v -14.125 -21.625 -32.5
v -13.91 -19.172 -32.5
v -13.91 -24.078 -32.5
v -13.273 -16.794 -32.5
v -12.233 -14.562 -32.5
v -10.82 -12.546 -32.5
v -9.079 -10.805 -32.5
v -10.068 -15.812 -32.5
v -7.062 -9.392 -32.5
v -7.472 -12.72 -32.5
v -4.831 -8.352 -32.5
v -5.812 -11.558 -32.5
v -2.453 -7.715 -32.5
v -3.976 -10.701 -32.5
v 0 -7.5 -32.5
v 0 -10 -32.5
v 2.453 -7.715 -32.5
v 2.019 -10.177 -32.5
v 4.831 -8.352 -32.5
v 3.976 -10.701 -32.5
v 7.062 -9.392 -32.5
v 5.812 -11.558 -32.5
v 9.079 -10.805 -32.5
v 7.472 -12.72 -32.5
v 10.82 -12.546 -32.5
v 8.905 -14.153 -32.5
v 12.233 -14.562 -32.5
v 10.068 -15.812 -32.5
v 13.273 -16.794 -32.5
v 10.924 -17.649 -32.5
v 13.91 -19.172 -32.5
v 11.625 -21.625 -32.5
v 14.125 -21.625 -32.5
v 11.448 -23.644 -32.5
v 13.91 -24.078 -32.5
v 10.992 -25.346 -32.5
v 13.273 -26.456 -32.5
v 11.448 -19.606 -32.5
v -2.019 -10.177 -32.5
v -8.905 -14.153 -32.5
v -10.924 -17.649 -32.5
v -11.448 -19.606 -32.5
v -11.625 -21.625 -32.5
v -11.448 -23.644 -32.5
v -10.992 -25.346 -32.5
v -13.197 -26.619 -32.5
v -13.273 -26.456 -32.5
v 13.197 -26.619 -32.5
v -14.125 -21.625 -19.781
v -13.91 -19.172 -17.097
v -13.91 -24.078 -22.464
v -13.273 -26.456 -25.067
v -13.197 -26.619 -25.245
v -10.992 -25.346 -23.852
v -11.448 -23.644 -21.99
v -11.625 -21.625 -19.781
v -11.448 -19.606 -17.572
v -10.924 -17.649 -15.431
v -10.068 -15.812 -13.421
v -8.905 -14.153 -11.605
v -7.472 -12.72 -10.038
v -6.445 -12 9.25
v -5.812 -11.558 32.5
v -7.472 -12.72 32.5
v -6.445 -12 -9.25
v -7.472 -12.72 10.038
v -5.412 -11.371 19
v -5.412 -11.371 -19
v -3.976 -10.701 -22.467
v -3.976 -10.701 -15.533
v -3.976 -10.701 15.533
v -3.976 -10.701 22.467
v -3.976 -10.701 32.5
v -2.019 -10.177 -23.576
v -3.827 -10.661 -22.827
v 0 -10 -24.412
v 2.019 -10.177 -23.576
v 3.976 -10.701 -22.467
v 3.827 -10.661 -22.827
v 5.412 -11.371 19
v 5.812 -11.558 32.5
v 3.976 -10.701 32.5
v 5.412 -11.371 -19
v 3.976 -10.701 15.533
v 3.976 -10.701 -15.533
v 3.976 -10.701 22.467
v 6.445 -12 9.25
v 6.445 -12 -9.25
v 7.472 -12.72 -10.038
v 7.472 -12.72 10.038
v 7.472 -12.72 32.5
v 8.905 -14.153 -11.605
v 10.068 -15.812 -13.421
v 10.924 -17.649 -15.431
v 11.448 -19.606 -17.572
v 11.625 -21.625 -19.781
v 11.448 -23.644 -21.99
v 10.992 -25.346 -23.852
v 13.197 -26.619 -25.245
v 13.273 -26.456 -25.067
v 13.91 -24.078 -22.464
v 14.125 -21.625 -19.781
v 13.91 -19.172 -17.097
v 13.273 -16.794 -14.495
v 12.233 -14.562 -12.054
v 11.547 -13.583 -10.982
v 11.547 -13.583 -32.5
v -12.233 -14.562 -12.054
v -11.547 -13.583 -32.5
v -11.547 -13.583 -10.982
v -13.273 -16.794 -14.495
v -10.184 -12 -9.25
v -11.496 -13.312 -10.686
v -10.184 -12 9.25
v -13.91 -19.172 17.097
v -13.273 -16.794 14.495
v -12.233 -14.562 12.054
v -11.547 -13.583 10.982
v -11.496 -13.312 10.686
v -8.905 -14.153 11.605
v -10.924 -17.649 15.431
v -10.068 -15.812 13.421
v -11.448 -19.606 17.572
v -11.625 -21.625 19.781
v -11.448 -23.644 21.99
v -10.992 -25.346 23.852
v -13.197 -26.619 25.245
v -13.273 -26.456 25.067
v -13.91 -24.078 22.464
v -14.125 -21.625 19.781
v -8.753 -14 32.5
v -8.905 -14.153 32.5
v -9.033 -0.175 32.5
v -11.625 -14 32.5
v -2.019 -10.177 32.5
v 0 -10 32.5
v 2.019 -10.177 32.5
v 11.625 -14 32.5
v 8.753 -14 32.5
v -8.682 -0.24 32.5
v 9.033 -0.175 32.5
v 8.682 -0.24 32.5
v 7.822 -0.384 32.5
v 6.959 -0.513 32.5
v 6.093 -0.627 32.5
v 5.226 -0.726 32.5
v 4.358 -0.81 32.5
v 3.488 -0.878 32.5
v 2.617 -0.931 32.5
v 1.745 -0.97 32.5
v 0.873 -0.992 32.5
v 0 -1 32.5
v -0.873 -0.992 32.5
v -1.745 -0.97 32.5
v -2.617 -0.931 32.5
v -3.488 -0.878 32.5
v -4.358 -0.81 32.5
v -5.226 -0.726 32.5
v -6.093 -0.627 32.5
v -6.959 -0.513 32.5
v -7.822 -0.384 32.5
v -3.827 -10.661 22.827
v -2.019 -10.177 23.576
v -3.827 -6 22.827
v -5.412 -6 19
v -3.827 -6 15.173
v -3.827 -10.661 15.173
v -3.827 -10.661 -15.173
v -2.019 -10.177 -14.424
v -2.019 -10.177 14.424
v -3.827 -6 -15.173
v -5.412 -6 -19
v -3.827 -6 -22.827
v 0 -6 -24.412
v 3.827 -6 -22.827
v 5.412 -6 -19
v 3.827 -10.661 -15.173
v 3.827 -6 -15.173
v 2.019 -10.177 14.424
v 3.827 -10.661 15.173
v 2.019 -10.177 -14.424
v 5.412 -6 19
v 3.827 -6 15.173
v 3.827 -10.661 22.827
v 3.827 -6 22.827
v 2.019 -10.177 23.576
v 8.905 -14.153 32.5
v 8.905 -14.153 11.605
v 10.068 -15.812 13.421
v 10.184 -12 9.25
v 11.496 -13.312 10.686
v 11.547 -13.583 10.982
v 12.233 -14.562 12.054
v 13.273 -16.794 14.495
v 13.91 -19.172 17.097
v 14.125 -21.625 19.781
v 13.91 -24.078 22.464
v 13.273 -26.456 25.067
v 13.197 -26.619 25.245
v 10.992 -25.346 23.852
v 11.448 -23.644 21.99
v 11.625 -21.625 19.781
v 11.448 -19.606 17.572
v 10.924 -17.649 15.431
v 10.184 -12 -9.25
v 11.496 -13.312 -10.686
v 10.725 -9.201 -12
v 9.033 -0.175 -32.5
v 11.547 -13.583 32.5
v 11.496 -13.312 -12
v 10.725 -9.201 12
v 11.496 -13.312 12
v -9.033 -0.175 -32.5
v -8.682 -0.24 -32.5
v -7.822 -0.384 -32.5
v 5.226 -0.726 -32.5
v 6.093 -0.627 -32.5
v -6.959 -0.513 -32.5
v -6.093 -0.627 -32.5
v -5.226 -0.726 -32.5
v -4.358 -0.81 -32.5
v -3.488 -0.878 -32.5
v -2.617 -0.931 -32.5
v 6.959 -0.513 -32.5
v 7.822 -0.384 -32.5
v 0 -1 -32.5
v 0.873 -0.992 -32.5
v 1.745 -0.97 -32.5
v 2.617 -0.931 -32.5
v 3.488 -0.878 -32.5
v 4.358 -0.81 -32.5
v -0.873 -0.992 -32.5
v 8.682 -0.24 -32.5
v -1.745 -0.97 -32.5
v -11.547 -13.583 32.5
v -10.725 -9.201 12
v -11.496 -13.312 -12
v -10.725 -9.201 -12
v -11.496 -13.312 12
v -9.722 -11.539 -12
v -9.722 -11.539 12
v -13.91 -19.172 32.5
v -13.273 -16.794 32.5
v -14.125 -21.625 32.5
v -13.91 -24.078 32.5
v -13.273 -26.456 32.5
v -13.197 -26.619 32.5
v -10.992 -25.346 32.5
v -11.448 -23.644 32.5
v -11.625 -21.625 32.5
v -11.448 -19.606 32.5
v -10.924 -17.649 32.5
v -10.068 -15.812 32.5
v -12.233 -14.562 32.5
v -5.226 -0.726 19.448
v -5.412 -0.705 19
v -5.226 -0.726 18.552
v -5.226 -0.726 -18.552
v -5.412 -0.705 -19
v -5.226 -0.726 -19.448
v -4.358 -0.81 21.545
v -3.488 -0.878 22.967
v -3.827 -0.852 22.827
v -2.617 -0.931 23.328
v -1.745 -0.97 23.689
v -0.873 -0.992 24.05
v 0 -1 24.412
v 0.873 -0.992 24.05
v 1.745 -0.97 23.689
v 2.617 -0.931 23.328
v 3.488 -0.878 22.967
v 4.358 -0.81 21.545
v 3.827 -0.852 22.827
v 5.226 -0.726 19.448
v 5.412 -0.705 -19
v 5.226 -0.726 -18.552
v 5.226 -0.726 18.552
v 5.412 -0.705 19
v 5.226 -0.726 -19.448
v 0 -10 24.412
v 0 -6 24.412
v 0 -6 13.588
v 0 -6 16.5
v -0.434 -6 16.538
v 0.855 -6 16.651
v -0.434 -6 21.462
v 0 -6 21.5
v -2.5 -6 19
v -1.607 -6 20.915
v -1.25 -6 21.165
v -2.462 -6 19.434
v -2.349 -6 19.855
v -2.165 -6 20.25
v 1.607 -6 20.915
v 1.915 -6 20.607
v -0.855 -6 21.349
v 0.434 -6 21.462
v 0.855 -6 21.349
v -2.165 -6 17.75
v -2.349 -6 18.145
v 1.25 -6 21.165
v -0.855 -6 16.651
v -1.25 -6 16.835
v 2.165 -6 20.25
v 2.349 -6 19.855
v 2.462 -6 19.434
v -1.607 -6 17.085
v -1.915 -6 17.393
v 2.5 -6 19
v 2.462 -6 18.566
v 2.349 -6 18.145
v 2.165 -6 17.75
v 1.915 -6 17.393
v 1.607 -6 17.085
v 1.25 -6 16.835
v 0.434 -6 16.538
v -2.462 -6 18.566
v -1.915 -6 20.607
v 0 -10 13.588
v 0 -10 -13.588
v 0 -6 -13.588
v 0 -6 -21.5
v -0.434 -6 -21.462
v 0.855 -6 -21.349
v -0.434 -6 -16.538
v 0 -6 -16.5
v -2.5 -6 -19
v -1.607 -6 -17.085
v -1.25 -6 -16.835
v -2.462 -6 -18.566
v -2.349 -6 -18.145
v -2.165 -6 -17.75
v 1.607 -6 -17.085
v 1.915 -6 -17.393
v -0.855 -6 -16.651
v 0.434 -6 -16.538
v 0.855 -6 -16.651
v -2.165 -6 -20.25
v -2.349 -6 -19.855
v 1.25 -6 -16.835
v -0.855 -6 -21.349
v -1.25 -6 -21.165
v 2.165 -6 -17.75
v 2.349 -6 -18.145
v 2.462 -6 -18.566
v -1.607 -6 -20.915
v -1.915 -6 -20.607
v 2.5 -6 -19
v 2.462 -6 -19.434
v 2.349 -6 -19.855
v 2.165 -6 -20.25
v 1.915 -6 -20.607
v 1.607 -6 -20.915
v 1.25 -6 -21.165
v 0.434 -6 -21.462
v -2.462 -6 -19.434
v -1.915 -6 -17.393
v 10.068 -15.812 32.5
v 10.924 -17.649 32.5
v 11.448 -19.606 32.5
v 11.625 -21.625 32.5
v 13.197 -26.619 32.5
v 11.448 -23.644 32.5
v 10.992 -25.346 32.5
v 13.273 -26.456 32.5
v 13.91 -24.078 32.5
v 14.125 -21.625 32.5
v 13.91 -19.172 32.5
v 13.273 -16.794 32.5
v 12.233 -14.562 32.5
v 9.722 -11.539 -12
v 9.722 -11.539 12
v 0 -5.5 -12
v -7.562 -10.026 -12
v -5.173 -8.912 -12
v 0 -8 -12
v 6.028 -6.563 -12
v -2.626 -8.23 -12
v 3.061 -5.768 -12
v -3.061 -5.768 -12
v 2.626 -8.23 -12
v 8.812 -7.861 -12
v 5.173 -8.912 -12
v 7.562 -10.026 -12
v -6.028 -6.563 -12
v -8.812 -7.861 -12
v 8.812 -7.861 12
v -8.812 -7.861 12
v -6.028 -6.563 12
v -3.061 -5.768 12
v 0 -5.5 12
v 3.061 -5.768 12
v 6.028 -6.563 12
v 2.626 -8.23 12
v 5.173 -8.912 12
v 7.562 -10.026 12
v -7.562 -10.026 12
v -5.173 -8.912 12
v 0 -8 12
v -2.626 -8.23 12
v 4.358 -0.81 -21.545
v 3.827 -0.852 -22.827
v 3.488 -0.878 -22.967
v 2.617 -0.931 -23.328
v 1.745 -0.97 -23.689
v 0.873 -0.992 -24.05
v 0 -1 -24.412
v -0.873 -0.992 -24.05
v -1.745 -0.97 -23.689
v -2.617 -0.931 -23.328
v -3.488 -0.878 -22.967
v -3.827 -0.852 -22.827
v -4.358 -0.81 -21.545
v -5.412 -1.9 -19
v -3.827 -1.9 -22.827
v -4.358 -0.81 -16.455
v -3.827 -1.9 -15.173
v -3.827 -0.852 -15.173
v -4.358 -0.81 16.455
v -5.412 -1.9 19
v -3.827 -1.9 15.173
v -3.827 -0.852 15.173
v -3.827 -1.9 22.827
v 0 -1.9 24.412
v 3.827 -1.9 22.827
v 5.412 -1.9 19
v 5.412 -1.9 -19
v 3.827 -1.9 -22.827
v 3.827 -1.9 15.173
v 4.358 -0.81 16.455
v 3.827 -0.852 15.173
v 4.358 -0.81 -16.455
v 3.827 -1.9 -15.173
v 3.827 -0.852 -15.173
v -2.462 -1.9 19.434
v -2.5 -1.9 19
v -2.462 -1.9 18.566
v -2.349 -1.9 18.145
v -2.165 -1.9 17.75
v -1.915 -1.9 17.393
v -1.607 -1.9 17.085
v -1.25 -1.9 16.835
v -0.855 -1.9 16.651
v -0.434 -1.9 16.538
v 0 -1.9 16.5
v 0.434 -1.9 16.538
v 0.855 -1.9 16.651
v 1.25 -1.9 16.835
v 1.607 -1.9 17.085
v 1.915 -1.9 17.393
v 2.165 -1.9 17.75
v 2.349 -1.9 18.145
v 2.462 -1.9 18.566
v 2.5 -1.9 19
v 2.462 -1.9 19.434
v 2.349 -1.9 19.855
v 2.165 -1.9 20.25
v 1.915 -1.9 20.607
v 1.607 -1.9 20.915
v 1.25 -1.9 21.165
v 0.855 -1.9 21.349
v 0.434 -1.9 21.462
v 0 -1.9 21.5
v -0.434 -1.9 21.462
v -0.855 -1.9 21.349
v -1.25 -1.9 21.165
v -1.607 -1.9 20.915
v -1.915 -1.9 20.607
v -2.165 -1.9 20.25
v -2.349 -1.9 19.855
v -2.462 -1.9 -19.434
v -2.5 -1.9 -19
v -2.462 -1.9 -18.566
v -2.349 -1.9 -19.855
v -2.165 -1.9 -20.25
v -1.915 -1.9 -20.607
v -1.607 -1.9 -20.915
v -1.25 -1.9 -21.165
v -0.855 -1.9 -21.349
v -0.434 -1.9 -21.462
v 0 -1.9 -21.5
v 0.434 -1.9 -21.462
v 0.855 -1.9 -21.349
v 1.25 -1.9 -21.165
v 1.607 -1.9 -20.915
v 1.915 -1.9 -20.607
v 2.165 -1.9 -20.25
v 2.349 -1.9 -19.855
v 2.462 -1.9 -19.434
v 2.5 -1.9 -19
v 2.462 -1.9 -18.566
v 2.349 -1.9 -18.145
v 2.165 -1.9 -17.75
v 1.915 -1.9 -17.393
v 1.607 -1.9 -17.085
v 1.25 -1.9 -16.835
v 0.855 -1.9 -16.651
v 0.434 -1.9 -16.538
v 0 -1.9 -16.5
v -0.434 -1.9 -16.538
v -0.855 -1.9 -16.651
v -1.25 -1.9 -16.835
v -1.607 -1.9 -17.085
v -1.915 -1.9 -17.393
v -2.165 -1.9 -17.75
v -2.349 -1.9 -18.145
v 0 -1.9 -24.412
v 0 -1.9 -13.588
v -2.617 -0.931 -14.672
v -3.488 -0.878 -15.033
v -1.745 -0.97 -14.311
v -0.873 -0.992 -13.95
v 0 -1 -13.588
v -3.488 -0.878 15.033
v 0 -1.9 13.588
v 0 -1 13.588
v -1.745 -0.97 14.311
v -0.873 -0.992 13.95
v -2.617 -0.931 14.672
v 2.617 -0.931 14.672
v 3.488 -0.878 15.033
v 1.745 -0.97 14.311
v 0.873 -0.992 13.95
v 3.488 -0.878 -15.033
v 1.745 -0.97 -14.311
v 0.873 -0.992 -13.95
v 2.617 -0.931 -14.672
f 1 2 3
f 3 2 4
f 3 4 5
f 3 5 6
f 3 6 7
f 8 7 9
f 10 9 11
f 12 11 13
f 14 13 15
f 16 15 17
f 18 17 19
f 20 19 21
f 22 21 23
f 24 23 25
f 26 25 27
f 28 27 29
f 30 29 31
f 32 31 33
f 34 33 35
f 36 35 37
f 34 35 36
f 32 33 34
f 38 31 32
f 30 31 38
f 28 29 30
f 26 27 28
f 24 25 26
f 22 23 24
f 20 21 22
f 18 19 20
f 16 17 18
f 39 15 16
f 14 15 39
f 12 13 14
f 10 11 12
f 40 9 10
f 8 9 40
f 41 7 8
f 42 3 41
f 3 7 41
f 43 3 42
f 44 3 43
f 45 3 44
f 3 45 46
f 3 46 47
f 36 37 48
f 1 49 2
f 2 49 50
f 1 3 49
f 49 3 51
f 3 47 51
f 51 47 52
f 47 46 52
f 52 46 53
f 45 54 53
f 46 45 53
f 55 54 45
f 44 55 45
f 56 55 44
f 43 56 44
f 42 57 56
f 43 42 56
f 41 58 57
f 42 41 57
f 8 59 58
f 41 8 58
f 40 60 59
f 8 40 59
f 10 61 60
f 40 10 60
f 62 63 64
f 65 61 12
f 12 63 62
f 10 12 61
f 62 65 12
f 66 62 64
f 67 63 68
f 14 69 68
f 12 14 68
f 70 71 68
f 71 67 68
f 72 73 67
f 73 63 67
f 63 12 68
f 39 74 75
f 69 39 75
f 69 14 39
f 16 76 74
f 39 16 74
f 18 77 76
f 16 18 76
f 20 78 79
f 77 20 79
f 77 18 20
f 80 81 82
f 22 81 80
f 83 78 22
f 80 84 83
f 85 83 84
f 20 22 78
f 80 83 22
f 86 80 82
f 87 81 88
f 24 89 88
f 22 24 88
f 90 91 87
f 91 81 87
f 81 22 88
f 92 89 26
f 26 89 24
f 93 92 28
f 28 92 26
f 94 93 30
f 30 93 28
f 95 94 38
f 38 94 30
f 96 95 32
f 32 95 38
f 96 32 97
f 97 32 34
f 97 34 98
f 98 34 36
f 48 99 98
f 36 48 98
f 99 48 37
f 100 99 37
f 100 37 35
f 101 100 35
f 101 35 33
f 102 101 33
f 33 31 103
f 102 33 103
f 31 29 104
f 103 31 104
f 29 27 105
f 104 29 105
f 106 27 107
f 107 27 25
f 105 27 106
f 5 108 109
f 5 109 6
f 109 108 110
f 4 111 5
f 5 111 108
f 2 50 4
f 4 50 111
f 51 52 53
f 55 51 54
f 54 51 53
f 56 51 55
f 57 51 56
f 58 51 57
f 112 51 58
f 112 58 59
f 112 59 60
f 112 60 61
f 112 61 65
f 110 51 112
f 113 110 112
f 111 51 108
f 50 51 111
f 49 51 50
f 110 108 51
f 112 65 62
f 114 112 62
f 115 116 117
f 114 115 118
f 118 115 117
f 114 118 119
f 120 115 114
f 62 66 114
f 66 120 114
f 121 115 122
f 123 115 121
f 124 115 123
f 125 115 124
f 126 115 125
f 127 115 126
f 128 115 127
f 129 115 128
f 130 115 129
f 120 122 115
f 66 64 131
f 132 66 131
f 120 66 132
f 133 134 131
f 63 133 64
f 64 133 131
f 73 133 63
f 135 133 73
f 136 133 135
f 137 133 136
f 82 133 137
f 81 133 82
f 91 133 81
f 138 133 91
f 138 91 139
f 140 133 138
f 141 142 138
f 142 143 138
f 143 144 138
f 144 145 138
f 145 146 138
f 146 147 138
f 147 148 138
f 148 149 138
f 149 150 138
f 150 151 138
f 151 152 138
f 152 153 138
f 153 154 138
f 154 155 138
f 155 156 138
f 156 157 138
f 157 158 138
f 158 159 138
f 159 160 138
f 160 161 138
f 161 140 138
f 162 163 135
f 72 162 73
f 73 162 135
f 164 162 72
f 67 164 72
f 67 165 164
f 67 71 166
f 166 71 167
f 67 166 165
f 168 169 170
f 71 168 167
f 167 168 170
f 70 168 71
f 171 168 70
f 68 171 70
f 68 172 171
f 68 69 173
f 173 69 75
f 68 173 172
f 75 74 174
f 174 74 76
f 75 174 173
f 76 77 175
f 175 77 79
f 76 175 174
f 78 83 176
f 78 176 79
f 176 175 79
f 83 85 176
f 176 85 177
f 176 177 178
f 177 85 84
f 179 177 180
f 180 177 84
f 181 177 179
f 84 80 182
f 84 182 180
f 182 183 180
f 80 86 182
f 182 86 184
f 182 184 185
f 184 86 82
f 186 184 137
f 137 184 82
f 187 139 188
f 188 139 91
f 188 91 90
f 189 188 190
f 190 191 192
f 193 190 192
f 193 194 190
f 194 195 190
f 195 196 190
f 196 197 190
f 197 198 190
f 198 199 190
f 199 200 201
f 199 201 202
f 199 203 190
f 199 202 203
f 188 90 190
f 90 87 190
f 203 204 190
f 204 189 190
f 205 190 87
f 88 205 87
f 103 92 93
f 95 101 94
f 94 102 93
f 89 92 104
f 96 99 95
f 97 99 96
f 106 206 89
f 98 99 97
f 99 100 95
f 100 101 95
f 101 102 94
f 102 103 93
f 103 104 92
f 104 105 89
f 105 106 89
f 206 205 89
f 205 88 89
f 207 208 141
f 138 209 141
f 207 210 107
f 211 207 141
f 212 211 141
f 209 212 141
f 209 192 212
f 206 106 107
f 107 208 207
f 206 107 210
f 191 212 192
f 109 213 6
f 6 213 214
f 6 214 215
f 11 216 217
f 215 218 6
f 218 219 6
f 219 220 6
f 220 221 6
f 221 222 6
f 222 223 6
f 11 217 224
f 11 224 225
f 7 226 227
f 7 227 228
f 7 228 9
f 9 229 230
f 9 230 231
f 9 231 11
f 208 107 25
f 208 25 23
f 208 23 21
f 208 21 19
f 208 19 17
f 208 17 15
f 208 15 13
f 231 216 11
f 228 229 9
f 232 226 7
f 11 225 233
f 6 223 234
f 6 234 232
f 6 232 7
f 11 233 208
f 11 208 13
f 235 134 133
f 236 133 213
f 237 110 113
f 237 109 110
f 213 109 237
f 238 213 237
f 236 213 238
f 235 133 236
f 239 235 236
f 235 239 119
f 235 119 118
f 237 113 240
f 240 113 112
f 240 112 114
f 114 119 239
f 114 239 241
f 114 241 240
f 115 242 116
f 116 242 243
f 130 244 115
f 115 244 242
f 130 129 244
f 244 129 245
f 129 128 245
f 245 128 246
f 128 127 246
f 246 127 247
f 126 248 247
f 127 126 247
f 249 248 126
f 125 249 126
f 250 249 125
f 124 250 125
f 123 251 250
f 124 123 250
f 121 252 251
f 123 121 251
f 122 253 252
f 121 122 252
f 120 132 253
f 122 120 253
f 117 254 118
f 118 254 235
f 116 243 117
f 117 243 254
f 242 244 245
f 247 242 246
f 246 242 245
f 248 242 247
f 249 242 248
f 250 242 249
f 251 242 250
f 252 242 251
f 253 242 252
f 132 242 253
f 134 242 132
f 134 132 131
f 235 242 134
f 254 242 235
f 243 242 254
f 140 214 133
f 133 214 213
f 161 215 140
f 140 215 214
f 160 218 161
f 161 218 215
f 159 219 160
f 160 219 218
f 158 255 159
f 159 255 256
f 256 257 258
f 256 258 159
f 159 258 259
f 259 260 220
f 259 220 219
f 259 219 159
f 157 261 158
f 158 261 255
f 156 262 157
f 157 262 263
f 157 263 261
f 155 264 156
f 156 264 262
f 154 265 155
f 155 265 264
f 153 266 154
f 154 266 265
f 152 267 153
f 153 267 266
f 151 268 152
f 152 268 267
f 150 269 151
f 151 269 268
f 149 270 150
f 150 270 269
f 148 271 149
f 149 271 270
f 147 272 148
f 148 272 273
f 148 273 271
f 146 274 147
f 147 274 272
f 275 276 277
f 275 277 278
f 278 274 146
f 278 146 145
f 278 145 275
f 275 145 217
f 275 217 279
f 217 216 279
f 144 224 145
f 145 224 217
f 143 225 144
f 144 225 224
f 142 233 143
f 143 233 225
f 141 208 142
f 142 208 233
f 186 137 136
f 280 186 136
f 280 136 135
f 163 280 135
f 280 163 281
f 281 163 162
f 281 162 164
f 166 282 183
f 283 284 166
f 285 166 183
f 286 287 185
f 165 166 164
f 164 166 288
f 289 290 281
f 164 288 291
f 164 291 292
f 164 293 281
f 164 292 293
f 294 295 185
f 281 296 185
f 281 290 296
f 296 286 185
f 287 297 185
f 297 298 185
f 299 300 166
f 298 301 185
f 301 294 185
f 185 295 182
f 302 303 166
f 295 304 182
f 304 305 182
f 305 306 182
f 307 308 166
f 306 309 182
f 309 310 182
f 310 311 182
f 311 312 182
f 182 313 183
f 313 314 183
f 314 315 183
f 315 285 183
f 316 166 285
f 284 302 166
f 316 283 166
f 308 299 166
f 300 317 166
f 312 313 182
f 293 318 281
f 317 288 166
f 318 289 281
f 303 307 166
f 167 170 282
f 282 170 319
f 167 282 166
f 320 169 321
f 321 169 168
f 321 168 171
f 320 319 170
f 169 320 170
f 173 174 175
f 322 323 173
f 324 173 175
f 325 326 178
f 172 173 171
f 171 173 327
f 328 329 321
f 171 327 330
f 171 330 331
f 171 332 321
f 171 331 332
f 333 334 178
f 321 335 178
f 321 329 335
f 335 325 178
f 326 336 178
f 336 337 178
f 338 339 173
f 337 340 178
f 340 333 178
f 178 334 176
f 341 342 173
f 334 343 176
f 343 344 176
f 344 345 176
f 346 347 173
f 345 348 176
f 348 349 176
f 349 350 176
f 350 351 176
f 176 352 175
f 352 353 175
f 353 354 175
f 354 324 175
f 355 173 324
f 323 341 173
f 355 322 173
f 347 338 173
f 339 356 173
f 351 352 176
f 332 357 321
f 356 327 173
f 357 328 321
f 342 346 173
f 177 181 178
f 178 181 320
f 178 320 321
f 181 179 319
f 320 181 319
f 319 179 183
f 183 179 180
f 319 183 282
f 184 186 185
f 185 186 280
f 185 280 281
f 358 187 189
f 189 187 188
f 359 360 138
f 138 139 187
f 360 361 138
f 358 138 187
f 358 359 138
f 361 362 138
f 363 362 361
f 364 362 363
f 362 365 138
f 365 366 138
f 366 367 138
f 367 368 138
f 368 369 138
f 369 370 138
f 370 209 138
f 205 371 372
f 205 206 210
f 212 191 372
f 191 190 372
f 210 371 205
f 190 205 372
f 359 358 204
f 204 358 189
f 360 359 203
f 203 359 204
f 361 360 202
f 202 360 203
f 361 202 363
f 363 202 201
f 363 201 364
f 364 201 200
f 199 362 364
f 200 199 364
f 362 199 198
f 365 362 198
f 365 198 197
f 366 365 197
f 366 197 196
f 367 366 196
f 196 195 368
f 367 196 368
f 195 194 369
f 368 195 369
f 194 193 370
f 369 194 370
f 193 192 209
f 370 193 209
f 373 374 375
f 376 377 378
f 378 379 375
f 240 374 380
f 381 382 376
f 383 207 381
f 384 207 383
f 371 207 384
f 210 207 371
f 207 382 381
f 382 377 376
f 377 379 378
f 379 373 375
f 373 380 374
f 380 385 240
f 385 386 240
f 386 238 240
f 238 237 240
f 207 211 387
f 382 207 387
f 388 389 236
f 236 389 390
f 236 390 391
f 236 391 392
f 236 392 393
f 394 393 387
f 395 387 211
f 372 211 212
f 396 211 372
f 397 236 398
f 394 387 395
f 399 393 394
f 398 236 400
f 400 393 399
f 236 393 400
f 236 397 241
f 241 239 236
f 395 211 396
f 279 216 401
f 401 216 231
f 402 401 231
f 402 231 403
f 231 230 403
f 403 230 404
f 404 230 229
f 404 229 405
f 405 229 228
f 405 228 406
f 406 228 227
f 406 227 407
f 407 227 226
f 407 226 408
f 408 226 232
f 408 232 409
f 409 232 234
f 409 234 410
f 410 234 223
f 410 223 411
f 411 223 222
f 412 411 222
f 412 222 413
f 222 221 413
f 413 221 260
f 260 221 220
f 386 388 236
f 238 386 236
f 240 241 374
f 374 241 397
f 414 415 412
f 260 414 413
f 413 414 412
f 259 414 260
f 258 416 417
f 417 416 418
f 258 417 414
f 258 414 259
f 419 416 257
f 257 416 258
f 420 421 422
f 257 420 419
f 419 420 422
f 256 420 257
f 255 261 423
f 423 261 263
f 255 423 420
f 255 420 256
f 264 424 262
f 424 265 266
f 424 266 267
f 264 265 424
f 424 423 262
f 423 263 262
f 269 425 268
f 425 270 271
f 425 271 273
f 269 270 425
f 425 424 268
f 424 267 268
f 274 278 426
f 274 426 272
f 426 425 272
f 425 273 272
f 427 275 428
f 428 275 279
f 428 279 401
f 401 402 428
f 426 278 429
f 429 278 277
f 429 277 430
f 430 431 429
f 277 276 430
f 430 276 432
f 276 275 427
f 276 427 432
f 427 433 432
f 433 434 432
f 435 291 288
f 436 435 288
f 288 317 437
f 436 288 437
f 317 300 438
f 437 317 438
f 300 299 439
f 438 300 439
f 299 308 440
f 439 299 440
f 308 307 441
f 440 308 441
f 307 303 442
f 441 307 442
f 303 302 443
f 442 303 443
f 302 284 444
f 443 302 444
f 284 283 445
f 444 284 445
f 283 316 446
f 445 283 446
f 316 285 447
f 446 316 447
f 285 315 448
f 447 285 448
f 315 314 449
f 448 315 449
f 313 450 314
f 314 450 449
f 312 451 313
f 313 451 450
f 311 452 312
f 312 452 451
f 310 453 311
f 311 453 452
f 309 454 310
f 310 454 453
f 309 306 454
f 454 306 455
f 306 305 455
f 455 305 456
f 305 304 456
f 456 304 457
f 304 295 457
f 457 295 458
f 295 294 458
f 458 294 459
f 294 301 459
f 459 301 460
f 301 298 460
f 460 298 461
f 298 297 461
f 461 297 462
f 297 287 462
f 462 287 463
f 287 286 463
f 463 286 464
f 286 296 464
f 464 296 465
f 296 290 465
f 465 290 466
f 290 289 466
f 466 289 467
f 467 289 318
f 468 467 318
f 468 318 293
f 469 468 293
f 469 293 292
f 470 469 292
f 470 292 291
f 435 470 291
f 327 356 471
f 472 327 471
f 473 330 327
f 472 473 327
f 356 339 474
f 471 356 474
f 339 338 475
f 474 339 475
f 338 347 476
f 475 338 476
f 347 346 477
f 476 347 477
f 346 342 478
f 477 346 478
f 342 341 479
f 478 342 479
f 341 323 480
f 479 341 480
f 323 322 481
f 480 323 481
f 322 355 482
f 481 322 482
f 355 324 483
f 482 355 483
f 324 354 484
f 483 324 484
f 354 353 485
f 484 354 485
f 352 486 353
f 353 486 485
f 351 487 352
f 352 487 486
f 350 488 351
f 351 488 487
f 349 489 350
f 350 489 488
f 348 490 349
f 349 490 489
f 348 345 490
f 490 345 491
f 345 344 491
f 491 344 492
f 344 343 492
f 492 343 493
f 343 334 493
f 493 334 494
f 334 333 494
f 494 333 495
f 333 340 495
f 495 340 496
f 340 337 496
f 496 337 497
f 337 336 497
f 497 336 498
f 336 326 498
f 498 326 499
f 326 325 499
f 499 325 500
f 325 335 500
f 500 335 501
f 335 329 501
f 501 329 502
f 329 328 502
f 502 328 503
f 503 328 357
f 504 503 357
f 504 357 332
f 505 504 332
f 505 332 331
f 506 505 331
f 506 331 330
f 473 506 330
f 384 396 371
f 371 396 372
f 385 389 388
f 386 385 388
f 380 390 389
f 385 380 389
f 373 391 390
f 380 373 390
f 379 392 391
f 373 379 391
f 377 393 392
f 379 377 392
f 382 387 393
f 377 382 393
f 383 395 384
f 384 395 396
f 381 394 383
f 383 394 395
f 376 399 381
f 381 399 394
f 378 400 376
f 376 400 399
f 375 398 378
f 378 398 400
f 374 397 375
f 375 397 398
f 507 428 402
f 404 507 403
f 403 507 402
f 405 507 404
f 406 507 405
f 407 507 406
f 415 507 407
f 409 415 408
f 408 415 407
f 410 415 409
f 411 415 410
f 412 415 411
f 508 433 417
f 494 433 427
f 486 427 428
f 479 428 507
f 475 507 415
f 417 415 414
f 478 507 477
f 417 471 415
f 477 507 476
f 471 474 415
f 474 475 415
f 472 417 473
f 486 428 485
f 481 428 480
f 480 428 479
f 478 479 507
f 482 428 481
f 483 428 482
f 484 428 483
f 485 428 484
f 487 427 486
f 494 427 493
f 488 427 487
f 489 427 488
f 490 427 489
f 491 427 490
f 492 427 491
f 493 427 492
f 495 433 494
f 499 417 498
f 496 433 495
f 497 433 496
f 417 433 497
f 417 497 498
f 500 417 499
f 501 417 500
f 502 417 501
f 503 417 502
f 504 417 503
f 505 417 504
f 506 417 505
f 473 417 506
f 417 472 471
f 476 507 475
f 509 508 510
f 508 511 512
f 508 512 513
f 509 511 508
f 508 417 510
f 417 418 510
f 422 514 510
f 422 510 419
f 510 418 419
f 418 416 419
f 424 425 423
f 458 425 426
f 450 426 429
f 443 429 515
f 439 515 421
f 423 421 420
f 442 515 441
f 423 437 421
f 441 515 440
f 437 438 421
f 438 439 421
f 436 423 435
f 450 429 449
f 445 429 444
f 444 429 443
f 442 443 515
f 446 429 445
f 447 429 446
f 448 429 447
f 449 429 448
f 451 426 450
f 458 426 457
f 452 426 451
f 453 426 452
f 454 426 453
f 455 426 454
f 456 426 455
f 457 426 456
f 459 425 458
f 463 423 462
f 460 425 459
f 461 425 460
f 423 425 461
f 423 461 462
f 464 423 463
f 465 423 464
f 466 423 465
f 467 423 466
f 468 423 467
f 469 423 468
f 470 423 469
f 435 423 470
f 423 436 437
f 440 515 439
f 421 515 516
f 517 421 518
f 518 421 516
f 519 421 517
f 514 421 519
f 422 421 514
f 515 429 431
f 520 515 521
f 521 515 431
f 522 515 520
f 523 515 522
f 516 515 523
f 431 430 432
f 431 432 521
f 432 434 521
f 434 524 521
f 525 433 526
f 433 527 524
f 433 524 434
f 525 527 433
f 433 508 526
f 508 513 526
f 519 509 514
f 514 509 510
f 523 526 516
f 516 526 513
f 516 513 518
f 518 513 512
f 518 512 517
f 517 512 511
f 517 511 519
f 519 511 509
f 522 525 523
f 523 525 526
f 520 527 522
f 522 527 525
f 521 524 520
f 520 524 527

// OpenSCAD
use <BezierScad.scad>
$fn = 36;

len = 65;
pumpD = 23.25;
insertD = 10;
insertOffset = 38;
wid = 15;
hgt = 10;

rotate([90,0,0]) difference() {
	base();
	screwCutout(insertOffset/2);
	screwCutout(-insertOffset/2);
	translate([0,0,hgt+(pumpD/2)]) rotate([90,0,0]) cylinder(r=pumpD/2, h=len+2, center=true);
}

module base() {
	difference() {
		union() {
			rotate([90,0,0]) 
				linear_extrude(len, center=true) polygon(
					points=[
					[-insertD/2-4, 0],
					[insertD/2+4, 0],
					[pumpD/2, hgt+4],
					[-pumpD/2, hgt+4],
					]
				);
			translate([0,0,hgt+(pumpD/2)]) rotate([90,0,0]) cylinder(r=2.5+pumpD/2, h=len, center=true);
		}
	translate([0,0,14+hgt+(pumpD/2)]) rotate([90,0,0]) rotate([0,0,360/12]) cylinder(r=5+pumpD/2, h=len+1, center=true, $fn=6);
	rotate([90,0,90]) linear_extrude(pumpD*2, center=true) polygon(points=[
		[-len/2 + pumpD,hgt+2],
		[len/2 - pumpD,hgt+2],
		[len/2, hgt+pumpD],
		[-len/2, hgt+pumpD],
	]);
	translate([0,0,hgt+1.5+pumpD/2])
		rotate([90,0,0]) {
			difference() {
				cylinder(r=6+pumpD/2, h=24, center=true);
				cylinder(r=3.5+pumpD/2, h=25, center=true);
			} 
		}
	translate([0,0,-50 + 1]) rotate([90,0,0]) cylinder(r=50, h = len+2, center=true, $fn=360);
	}
}

module screwCutout(yOffset) {
	translate([0,yOffset,0]) {
		translate([0,0,hgt/2]) cylinder(r=5/2, h=hgt+2, center=true);
		translate([0,0,-0.1]) cylinder(r=(insertD/2)/cos(180/8), h=2, center=false, $fn=8);
		translate([0,0,6]) cylinder(r=(10/2)/cos(180/8), h=10, center=false, $fn=8);
	}
}
